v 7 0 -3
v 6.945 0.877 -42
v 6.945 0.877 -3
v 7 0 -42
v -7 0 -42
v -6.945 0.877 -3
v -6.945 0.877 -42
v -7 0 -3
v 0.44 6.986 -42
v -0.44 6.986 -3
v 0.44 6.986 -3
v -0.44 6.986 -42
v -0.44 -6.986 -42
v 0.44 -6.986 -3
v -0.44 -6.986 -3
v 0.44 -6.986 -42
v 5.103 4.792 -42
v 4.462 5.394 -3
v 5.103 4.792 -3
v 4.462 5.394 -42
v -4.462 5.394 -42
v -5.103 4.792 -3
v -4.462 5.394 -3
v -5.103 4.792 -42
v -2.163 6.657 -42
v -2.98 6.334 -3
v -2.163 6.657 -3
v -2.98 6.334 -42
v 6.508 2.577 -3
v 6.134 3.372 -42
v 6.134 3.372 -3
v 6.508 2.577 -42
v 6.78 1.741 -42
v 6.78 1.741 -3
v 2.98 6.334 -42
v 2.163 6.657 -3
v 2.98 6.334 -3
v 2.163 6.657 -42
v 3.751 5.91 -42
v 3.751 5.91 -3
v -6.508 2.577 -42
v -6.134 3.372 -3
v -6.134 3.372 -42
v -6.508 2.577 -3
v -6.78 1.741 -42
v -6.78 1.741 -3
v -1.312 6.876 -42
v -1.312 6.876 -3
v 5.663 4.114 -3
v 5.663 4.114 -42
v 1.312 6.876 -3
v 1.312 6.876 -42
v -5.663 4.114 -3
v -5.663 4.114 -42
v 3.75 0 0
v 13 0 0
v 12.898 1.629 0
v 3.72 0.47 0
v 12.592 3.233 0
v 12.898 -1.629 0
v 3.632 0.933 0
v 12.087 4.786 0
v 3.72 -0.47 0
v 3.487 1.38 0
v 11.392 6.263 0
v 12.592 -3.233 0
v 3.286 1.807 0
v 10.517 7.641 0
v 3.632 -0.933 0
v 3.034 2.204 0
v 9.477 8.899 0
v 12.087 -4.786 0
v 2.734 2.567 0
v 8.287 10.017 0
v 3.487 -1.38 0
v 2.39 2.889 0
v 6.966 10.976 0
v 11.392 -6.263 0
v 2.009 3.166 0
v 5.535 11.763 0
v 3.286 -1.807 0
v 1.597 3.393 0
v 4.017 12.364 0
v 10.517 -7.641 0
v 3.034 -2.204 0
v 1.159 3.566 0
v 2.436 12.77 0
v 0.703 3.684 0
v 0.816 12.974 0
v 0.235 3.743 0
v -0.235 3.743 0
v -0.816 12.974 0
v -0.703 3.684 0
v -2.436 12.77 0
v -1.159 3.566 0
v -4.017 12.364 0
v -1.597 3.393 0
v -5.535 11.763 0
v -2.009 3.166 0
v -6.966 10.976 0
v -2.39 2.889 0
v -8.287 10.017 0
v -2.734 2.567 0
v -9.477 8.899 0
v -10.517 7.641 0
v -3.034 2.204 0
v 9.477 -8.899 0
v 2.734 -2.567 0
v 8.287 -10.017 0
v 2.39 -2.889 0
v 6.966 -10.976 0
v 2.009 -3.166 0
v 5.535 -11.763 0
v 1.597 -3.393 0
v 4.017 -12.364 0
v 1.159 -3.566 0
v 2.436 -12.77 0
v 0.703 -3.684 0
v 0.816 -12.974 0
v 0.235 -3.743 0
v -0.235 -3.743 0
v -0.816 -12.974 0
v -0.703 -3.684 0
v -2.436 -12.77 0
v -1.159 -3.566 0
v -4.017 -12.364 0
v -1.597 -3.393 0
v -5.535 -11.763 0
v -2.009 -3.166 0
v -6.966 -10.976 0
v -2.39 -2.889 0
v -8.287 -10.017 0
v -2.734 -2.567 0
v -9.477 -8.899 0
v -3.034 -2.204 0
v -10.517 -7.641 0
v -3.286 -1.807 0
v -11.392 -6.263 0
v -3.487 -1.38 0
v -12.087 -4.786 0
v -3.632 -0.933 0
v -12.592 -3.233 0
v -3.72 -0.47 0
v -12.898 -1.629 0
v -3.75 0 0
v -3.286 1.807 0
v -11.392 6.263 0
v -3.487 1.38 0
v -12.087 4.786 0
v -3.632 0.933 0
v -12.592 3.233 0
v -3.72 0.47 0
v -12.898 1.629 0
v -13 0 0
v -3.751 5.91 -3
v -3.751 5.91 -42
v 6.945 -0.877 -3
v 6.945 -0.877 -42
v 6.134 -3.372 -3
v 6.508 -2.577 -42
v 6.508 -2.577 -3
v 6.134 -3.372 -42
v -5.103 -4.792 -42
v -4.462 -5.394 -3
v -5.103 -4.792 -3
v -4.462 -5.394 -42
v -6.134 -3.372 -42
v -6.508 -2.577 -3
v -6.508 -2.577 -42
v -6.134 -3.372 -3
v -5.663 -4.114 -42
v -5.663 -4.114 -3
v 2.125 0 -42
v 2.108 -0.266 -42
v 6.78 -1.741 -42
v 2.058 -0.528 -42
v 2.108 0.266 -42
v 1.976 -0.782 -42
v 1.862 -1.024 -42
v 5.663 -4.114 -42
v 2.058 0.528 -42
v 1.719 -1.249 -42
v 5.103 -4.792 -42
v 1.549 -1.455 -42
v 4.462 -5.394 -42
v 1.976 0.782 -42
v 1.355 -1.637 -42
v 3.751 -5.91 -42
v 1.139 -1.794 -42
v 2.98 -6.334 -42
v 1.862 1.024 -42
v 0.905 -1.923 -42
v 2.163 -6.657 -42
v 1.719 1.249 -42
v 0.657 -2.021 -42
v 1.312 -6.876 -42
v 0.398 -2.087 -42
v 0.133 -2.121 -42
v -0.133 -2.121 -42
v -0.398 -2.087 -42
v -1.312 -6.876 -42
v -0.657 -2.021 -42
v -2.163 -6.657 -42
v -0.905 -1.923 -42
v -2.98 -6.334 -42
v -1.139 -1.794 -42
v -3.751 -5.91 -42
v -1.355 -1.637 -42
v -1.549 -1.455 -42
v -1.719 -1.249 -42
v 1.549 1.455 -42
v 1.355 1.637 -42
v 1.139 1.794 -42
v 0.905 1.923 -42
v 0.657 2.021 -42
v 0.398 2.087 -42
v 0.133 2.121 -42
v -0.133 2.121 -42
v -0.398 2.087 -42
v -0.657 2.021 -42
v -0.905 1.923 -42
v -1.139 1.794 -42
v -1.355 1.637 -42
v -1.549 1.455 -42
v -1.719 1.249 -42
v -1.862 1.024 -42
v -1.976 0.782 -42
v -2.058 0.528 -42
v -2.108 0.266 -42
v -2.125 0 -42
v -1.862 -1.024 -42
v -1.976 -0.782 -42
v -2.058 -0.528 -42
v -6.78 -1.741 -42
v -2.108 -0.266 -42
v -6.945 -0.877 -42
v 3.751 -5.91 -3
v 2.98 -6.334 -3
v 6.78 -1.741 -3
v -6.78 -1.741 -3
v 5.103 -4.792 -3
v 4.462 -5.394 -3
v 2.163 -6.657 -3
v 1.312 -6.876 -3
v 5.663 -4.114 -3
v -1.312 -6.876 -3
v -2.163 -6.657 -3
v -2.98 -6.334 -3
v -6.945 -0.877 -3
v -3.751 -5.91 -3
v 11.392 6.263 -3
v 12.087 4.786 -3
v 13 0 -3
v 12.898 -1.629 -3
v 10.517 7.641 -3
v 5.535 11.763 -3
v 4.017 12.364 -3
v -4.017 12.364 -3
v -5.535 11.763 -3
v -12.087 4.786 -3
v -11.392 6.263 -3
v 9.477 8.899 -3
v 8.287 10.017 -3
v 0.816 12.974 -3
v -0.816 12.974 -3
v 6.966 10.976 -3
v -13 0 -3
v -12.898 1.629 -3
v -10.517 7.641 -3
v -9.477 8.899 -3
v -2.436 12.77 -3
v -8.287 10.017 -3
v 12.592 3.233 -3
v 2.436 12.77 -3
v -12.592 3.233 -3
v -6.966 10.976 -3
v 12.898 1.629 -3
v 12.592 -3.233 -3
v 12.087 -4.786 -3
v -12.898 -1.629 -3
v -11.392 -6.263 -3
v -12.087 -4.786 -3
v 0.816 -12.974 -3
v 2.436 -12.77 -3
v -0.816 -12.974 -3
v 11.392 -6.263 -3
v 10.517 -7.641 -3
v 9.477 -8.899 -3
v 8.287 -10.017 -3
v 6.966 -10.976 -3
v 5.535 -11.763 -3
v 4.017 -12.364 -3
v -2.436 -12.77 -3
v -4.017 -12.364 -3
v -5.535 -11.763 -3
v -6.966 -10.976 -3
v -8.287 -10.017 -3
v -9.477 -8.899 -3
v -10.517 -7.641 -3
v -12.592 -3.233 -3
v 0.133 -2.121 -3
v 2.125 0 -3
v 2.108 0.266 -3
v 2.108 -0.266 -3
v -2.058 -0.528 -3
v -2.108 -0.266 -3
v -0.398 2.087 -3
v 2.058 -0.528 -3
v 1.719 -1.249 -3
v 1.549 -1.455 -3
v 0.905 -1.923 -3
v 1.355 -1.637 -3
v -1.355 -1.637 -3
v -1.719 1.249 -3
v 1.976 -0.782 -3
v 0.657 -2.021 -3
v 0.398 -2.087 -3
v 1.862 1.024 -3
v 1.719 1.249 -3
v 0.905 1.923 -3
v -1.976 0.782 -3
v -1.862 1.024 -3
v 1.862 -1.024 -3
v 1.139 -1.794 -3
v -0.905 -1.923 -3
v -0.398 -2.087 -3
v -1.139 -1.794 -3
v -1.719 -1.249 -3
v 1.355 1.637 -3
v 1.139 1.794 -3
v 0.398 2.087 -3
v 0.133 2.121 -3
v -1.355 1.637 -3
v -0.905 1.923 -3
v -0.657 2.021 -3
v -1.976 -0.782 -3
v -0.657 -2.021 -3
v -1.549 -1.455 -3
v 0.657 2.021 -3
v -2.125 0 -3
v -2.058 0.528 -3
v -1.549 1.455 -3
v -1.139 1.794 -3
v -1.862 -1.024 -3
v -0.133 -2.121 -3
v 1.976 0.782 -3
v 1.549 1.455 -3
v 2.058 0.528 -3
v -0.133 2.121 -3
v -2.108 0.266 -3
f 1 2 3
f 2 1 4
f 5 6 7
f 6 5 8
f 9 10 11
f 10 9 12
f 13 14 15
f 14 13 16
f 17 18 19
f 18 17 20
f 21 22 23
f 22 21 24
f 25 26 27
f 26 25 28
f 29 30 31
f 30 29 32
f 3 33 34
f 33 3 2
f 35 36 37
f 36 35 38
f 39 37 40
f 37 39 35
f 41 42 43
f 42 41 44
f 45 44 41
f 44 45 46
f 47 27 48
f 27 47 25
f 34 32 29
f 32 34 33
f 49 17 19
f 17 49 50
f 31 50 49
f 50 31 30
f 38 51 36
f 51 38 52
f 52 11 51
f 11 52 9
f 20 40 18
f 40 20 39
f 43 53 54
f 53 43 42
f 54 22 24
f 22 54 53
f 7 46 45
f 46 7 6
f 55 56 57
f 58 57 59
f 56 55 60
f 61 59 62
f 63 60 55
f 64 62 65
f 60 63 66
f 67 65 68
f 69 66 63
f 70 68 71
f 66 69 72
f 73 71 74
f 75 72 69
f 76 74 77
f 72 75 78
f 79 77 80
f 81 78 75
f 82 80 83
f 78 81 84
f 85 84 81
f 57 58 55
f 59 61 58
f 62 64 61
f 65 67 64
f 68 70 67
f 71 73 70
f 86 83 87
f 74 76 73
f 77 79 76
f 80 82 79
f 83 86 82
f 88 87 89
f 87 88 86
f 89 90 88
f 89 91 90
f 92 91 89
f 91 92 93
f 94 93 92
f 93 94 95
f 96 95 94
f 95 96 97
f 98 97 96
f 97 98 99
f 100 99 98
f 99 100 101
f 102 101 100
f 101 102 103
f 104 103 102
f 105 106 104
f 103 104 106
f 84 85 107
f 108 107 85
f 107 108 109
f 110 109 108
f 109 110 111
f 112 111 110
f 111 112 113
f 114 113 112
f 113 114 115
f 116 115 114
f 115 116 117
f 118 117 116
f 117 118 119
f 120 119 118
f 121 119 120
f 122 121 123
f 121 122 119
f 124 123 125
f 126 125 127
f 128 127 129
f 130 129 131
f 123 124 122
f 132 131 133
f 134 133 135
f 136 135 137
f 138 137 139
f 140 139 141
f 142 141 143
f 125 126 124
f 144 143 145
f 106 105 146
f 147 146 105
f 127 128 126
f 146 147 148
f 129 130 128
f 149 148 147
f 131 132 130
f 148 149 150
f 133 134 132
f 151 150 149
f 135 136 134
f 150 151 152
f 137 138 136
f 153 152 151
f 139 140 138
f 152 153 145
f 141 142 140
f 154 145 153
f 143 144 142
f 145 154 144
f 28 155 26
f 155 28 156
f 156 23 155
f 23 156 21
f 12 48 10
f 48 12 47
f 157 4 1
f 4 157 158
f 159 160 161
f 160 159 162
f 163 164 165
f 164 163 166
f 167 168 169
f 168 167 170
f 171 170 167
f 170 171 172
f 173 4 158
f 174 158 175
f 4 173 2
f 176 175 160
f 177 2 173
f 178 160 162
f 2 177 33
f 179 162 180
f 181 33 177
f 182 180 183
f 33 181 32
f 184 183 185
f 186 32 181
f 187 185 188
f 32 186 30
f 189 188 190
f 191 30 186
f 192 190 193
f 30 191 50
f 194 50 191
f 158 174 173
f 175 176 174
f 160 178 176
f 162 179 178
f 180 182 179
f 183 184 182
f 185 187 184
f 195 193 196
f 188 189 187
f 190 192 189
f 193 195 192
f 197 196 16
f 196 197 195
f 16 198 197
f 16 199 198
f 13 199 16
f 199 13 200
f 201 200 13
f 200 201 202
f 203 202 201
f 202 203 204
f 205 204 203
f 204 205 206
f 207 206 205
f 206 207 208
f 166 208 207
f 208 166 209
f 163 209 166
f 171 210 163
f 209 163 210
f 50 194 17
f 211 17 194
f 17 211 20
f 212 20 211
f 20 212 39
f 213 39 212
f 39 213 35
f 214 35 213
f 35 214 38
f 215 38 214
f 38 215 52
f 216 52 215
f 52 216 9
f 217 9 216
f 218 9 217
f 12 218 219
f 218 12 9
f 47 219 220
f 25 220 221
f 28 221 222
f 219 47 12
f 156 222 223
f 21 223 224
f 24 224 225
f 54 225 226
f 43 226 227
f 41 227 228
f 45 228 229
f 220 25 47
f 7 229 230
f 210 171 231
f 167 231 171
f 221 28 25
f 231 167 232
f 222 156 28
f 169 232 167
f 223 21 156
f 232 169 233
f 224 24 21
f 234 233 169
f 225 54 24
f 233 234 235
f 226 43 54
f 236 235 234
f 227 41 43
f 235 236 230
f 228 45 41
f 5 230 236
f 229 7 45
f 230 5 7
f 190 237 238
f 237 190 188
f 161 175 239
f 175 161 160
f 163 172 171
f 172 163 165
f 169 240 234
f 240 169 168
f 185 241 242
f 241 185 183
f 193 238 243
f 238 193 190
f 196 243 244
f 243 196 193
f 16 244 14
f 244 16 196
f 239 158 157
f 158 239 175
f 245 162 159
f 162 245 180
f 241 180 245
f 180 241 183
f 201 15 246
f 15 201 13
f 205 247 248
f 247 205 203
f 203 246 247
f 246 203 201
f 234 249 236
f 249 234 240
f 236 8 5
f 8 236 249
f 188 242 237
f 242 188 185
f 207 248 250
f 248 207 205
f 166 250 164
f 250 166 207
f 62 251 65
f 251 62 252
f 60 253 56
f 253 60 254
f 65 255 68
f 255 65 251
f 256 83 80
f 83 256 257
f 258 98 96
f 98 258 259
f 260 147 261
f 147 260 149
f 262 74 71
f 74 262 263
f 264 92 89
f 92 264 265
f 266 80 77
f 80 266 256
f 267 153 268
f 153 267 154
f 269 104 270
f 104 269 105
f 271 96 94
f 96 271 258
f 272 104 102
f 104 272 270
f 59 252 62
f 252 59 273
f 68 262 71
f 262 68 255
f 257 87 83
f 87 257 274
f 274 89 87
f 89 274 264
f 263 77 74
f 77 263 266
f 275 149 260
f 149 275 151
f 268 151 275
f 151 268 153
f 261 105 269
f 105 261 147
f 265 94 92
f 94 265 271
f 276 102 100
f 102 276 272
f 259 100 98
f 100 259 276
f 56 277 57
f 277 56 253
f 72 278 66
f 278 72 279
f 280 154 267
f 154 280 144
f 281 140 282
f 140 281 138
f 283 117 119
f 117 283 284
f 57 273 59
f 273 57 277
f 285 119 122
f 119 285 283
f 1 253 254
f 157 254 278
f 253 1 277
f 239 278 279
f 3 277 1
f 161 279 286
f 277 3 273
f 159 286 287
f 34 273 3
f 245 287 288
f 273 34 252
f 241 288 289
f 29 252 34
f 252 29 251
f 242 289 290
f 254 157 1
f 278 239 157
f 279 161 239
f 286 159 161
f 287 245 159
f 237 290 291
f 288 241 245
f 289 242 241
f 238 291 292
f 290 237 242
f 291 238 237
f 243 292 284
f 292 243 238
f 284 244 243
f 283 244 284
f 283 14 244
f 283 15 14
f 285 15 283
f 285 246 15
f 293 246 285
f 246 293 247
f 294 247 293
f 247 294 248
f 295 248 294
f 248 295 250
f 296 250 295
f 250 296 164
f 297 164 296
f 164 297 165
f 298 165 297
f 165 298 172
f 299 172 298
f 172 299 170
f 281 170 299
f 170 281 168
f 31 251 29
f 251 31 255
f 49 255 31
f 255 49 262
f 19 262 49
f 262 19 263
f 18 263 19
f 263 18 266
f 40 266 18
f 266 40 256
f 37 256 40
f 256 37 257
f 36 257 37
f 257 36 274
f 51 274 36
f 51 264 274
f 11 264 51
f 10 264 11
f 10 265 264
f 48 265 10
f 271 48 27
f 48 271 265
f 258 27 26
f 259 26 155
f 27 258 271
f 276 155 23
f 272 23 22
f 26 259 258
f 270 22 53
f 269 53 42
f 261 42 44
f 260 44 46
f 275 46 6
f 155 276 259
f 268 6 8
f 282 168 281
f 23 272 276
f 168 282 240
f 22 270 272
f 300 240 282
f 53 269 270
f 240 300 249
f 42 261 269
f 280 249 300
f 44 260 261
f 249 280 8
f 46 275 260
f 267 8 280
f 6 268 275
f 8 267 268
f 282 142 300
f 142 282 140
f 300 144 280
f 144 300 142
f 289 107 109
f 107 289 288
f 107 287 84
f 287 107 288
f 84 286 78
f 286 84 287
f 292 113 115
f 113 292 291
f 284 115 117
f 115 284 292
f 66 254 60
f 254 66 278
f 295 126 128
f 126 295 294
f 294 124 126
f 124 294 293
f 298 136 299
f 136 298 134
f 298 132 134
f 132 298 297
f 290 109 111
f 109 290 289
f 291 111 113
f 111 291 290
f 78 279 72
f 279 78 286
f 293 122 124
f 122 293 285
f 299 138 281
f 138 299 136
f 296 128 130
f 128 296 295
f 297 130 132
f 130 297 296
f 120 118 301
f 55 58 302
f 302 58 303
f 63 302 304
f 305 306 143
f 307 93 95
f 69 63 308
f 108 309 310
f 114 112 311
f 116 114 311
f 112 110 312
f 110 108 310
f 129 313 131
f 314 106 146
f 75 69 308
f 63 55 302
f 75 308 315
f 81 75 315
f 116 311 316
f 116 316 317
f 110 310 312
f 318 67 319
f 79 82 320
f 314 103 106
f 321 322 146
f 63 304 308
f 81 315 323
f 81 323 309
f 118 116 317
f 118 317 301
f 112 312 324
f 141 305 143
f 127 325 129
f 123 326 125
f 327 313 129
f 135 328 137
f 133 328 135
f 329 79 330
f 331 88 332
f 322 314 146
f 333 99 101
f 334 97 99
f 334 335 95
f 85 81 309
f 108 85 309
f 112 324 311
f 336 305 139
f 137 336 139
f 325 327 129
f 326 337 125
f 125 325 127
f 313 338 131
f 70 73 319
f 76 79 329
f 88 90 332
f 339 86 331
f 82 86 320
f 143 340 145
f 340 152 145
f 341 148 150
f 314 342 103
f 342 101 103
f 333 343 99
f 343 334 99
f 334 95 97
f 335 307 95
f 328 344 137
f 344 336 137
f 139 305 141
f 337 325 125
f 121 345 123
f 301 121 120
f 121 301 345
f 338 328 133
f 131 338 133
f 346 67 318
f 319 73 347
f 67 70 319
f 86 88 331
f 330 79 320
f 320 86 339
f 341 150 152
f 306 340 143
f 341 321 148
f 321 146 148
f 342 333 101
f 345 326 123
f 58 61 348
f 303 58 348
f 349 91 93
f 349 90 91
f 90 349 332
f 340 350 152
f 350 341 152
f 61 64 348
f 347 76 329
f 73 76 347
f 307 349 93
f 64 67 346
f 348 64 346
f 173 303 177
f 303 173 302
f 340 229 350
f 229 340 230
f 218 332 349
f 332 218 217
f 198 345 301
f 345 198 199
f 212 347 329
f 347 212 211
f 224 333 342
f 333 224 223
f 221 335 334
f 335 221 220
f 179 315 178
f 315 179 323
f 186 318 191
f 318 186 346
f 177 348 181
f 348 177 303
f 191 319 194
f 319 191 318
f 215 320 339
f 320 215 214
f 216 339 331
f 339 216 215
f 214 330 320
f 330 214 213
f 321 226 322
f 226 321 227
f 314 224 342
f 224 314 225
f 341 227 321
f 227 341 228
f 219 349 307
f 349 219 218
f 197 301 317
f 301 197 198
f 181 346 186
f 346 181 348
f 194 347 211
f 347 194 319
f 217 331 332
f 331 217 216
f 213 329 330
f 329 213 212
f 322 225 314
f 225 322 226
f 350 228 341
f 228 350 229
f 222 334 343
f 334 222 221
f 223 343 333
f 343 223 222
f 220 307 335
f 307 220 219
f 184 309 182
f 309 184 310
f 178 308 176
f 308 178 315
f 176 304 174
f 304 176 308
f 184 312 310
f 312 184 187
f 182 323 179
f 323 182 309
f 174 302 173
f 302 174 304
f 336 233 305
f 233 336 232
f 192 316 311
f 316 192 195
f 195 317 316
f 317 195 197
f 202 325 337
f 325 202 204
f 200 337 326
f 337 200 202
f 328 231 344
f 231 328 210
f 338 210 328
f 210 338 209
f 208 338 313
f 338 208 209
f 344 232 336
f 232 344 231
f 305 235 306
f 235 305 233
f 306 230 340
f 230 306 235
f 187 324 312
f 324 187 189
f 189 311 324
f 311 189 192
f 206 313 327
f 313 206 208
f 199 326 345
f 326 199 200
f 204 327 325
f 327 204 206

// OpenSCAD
$fn = 50;


difference() {
	union() {
		translate(v = [0, 0, -42.0000000000]) {
			cylinder(h = 42, r = 7.0000000000);
		}
		translate(v = [0, 0, -3.0000000000]) {
			cylinder(h = 3, r = 13.0000000000);
		}
	}
	union() {
		translate(v = [0, 0, 0]) {
			rotate(a = [0, 0, 0]) {
				difference() {
					union() {
						#translate(v = [0, 0, -42.0000000000]) {
							cylinder(h = 42, r = 2.0000000000);
						}
						#translate(v = [0, 0, -3]) {
							cylinder(h = 3, r = 7.0000000000, r1 = 2.1250000000, r2 = 3.7500000000);
						}
						#translate(v = [0, 0, -42.0000000000]) {
							cylinder(h = 42, r = 2.1250000000);
						}
						#translate(v = [0, 0, -42.0000000000]) {
							cylinder(h = 42, r = 2.0000000000);
						}
					}
					union();
				}
			}
		}
	}
}
